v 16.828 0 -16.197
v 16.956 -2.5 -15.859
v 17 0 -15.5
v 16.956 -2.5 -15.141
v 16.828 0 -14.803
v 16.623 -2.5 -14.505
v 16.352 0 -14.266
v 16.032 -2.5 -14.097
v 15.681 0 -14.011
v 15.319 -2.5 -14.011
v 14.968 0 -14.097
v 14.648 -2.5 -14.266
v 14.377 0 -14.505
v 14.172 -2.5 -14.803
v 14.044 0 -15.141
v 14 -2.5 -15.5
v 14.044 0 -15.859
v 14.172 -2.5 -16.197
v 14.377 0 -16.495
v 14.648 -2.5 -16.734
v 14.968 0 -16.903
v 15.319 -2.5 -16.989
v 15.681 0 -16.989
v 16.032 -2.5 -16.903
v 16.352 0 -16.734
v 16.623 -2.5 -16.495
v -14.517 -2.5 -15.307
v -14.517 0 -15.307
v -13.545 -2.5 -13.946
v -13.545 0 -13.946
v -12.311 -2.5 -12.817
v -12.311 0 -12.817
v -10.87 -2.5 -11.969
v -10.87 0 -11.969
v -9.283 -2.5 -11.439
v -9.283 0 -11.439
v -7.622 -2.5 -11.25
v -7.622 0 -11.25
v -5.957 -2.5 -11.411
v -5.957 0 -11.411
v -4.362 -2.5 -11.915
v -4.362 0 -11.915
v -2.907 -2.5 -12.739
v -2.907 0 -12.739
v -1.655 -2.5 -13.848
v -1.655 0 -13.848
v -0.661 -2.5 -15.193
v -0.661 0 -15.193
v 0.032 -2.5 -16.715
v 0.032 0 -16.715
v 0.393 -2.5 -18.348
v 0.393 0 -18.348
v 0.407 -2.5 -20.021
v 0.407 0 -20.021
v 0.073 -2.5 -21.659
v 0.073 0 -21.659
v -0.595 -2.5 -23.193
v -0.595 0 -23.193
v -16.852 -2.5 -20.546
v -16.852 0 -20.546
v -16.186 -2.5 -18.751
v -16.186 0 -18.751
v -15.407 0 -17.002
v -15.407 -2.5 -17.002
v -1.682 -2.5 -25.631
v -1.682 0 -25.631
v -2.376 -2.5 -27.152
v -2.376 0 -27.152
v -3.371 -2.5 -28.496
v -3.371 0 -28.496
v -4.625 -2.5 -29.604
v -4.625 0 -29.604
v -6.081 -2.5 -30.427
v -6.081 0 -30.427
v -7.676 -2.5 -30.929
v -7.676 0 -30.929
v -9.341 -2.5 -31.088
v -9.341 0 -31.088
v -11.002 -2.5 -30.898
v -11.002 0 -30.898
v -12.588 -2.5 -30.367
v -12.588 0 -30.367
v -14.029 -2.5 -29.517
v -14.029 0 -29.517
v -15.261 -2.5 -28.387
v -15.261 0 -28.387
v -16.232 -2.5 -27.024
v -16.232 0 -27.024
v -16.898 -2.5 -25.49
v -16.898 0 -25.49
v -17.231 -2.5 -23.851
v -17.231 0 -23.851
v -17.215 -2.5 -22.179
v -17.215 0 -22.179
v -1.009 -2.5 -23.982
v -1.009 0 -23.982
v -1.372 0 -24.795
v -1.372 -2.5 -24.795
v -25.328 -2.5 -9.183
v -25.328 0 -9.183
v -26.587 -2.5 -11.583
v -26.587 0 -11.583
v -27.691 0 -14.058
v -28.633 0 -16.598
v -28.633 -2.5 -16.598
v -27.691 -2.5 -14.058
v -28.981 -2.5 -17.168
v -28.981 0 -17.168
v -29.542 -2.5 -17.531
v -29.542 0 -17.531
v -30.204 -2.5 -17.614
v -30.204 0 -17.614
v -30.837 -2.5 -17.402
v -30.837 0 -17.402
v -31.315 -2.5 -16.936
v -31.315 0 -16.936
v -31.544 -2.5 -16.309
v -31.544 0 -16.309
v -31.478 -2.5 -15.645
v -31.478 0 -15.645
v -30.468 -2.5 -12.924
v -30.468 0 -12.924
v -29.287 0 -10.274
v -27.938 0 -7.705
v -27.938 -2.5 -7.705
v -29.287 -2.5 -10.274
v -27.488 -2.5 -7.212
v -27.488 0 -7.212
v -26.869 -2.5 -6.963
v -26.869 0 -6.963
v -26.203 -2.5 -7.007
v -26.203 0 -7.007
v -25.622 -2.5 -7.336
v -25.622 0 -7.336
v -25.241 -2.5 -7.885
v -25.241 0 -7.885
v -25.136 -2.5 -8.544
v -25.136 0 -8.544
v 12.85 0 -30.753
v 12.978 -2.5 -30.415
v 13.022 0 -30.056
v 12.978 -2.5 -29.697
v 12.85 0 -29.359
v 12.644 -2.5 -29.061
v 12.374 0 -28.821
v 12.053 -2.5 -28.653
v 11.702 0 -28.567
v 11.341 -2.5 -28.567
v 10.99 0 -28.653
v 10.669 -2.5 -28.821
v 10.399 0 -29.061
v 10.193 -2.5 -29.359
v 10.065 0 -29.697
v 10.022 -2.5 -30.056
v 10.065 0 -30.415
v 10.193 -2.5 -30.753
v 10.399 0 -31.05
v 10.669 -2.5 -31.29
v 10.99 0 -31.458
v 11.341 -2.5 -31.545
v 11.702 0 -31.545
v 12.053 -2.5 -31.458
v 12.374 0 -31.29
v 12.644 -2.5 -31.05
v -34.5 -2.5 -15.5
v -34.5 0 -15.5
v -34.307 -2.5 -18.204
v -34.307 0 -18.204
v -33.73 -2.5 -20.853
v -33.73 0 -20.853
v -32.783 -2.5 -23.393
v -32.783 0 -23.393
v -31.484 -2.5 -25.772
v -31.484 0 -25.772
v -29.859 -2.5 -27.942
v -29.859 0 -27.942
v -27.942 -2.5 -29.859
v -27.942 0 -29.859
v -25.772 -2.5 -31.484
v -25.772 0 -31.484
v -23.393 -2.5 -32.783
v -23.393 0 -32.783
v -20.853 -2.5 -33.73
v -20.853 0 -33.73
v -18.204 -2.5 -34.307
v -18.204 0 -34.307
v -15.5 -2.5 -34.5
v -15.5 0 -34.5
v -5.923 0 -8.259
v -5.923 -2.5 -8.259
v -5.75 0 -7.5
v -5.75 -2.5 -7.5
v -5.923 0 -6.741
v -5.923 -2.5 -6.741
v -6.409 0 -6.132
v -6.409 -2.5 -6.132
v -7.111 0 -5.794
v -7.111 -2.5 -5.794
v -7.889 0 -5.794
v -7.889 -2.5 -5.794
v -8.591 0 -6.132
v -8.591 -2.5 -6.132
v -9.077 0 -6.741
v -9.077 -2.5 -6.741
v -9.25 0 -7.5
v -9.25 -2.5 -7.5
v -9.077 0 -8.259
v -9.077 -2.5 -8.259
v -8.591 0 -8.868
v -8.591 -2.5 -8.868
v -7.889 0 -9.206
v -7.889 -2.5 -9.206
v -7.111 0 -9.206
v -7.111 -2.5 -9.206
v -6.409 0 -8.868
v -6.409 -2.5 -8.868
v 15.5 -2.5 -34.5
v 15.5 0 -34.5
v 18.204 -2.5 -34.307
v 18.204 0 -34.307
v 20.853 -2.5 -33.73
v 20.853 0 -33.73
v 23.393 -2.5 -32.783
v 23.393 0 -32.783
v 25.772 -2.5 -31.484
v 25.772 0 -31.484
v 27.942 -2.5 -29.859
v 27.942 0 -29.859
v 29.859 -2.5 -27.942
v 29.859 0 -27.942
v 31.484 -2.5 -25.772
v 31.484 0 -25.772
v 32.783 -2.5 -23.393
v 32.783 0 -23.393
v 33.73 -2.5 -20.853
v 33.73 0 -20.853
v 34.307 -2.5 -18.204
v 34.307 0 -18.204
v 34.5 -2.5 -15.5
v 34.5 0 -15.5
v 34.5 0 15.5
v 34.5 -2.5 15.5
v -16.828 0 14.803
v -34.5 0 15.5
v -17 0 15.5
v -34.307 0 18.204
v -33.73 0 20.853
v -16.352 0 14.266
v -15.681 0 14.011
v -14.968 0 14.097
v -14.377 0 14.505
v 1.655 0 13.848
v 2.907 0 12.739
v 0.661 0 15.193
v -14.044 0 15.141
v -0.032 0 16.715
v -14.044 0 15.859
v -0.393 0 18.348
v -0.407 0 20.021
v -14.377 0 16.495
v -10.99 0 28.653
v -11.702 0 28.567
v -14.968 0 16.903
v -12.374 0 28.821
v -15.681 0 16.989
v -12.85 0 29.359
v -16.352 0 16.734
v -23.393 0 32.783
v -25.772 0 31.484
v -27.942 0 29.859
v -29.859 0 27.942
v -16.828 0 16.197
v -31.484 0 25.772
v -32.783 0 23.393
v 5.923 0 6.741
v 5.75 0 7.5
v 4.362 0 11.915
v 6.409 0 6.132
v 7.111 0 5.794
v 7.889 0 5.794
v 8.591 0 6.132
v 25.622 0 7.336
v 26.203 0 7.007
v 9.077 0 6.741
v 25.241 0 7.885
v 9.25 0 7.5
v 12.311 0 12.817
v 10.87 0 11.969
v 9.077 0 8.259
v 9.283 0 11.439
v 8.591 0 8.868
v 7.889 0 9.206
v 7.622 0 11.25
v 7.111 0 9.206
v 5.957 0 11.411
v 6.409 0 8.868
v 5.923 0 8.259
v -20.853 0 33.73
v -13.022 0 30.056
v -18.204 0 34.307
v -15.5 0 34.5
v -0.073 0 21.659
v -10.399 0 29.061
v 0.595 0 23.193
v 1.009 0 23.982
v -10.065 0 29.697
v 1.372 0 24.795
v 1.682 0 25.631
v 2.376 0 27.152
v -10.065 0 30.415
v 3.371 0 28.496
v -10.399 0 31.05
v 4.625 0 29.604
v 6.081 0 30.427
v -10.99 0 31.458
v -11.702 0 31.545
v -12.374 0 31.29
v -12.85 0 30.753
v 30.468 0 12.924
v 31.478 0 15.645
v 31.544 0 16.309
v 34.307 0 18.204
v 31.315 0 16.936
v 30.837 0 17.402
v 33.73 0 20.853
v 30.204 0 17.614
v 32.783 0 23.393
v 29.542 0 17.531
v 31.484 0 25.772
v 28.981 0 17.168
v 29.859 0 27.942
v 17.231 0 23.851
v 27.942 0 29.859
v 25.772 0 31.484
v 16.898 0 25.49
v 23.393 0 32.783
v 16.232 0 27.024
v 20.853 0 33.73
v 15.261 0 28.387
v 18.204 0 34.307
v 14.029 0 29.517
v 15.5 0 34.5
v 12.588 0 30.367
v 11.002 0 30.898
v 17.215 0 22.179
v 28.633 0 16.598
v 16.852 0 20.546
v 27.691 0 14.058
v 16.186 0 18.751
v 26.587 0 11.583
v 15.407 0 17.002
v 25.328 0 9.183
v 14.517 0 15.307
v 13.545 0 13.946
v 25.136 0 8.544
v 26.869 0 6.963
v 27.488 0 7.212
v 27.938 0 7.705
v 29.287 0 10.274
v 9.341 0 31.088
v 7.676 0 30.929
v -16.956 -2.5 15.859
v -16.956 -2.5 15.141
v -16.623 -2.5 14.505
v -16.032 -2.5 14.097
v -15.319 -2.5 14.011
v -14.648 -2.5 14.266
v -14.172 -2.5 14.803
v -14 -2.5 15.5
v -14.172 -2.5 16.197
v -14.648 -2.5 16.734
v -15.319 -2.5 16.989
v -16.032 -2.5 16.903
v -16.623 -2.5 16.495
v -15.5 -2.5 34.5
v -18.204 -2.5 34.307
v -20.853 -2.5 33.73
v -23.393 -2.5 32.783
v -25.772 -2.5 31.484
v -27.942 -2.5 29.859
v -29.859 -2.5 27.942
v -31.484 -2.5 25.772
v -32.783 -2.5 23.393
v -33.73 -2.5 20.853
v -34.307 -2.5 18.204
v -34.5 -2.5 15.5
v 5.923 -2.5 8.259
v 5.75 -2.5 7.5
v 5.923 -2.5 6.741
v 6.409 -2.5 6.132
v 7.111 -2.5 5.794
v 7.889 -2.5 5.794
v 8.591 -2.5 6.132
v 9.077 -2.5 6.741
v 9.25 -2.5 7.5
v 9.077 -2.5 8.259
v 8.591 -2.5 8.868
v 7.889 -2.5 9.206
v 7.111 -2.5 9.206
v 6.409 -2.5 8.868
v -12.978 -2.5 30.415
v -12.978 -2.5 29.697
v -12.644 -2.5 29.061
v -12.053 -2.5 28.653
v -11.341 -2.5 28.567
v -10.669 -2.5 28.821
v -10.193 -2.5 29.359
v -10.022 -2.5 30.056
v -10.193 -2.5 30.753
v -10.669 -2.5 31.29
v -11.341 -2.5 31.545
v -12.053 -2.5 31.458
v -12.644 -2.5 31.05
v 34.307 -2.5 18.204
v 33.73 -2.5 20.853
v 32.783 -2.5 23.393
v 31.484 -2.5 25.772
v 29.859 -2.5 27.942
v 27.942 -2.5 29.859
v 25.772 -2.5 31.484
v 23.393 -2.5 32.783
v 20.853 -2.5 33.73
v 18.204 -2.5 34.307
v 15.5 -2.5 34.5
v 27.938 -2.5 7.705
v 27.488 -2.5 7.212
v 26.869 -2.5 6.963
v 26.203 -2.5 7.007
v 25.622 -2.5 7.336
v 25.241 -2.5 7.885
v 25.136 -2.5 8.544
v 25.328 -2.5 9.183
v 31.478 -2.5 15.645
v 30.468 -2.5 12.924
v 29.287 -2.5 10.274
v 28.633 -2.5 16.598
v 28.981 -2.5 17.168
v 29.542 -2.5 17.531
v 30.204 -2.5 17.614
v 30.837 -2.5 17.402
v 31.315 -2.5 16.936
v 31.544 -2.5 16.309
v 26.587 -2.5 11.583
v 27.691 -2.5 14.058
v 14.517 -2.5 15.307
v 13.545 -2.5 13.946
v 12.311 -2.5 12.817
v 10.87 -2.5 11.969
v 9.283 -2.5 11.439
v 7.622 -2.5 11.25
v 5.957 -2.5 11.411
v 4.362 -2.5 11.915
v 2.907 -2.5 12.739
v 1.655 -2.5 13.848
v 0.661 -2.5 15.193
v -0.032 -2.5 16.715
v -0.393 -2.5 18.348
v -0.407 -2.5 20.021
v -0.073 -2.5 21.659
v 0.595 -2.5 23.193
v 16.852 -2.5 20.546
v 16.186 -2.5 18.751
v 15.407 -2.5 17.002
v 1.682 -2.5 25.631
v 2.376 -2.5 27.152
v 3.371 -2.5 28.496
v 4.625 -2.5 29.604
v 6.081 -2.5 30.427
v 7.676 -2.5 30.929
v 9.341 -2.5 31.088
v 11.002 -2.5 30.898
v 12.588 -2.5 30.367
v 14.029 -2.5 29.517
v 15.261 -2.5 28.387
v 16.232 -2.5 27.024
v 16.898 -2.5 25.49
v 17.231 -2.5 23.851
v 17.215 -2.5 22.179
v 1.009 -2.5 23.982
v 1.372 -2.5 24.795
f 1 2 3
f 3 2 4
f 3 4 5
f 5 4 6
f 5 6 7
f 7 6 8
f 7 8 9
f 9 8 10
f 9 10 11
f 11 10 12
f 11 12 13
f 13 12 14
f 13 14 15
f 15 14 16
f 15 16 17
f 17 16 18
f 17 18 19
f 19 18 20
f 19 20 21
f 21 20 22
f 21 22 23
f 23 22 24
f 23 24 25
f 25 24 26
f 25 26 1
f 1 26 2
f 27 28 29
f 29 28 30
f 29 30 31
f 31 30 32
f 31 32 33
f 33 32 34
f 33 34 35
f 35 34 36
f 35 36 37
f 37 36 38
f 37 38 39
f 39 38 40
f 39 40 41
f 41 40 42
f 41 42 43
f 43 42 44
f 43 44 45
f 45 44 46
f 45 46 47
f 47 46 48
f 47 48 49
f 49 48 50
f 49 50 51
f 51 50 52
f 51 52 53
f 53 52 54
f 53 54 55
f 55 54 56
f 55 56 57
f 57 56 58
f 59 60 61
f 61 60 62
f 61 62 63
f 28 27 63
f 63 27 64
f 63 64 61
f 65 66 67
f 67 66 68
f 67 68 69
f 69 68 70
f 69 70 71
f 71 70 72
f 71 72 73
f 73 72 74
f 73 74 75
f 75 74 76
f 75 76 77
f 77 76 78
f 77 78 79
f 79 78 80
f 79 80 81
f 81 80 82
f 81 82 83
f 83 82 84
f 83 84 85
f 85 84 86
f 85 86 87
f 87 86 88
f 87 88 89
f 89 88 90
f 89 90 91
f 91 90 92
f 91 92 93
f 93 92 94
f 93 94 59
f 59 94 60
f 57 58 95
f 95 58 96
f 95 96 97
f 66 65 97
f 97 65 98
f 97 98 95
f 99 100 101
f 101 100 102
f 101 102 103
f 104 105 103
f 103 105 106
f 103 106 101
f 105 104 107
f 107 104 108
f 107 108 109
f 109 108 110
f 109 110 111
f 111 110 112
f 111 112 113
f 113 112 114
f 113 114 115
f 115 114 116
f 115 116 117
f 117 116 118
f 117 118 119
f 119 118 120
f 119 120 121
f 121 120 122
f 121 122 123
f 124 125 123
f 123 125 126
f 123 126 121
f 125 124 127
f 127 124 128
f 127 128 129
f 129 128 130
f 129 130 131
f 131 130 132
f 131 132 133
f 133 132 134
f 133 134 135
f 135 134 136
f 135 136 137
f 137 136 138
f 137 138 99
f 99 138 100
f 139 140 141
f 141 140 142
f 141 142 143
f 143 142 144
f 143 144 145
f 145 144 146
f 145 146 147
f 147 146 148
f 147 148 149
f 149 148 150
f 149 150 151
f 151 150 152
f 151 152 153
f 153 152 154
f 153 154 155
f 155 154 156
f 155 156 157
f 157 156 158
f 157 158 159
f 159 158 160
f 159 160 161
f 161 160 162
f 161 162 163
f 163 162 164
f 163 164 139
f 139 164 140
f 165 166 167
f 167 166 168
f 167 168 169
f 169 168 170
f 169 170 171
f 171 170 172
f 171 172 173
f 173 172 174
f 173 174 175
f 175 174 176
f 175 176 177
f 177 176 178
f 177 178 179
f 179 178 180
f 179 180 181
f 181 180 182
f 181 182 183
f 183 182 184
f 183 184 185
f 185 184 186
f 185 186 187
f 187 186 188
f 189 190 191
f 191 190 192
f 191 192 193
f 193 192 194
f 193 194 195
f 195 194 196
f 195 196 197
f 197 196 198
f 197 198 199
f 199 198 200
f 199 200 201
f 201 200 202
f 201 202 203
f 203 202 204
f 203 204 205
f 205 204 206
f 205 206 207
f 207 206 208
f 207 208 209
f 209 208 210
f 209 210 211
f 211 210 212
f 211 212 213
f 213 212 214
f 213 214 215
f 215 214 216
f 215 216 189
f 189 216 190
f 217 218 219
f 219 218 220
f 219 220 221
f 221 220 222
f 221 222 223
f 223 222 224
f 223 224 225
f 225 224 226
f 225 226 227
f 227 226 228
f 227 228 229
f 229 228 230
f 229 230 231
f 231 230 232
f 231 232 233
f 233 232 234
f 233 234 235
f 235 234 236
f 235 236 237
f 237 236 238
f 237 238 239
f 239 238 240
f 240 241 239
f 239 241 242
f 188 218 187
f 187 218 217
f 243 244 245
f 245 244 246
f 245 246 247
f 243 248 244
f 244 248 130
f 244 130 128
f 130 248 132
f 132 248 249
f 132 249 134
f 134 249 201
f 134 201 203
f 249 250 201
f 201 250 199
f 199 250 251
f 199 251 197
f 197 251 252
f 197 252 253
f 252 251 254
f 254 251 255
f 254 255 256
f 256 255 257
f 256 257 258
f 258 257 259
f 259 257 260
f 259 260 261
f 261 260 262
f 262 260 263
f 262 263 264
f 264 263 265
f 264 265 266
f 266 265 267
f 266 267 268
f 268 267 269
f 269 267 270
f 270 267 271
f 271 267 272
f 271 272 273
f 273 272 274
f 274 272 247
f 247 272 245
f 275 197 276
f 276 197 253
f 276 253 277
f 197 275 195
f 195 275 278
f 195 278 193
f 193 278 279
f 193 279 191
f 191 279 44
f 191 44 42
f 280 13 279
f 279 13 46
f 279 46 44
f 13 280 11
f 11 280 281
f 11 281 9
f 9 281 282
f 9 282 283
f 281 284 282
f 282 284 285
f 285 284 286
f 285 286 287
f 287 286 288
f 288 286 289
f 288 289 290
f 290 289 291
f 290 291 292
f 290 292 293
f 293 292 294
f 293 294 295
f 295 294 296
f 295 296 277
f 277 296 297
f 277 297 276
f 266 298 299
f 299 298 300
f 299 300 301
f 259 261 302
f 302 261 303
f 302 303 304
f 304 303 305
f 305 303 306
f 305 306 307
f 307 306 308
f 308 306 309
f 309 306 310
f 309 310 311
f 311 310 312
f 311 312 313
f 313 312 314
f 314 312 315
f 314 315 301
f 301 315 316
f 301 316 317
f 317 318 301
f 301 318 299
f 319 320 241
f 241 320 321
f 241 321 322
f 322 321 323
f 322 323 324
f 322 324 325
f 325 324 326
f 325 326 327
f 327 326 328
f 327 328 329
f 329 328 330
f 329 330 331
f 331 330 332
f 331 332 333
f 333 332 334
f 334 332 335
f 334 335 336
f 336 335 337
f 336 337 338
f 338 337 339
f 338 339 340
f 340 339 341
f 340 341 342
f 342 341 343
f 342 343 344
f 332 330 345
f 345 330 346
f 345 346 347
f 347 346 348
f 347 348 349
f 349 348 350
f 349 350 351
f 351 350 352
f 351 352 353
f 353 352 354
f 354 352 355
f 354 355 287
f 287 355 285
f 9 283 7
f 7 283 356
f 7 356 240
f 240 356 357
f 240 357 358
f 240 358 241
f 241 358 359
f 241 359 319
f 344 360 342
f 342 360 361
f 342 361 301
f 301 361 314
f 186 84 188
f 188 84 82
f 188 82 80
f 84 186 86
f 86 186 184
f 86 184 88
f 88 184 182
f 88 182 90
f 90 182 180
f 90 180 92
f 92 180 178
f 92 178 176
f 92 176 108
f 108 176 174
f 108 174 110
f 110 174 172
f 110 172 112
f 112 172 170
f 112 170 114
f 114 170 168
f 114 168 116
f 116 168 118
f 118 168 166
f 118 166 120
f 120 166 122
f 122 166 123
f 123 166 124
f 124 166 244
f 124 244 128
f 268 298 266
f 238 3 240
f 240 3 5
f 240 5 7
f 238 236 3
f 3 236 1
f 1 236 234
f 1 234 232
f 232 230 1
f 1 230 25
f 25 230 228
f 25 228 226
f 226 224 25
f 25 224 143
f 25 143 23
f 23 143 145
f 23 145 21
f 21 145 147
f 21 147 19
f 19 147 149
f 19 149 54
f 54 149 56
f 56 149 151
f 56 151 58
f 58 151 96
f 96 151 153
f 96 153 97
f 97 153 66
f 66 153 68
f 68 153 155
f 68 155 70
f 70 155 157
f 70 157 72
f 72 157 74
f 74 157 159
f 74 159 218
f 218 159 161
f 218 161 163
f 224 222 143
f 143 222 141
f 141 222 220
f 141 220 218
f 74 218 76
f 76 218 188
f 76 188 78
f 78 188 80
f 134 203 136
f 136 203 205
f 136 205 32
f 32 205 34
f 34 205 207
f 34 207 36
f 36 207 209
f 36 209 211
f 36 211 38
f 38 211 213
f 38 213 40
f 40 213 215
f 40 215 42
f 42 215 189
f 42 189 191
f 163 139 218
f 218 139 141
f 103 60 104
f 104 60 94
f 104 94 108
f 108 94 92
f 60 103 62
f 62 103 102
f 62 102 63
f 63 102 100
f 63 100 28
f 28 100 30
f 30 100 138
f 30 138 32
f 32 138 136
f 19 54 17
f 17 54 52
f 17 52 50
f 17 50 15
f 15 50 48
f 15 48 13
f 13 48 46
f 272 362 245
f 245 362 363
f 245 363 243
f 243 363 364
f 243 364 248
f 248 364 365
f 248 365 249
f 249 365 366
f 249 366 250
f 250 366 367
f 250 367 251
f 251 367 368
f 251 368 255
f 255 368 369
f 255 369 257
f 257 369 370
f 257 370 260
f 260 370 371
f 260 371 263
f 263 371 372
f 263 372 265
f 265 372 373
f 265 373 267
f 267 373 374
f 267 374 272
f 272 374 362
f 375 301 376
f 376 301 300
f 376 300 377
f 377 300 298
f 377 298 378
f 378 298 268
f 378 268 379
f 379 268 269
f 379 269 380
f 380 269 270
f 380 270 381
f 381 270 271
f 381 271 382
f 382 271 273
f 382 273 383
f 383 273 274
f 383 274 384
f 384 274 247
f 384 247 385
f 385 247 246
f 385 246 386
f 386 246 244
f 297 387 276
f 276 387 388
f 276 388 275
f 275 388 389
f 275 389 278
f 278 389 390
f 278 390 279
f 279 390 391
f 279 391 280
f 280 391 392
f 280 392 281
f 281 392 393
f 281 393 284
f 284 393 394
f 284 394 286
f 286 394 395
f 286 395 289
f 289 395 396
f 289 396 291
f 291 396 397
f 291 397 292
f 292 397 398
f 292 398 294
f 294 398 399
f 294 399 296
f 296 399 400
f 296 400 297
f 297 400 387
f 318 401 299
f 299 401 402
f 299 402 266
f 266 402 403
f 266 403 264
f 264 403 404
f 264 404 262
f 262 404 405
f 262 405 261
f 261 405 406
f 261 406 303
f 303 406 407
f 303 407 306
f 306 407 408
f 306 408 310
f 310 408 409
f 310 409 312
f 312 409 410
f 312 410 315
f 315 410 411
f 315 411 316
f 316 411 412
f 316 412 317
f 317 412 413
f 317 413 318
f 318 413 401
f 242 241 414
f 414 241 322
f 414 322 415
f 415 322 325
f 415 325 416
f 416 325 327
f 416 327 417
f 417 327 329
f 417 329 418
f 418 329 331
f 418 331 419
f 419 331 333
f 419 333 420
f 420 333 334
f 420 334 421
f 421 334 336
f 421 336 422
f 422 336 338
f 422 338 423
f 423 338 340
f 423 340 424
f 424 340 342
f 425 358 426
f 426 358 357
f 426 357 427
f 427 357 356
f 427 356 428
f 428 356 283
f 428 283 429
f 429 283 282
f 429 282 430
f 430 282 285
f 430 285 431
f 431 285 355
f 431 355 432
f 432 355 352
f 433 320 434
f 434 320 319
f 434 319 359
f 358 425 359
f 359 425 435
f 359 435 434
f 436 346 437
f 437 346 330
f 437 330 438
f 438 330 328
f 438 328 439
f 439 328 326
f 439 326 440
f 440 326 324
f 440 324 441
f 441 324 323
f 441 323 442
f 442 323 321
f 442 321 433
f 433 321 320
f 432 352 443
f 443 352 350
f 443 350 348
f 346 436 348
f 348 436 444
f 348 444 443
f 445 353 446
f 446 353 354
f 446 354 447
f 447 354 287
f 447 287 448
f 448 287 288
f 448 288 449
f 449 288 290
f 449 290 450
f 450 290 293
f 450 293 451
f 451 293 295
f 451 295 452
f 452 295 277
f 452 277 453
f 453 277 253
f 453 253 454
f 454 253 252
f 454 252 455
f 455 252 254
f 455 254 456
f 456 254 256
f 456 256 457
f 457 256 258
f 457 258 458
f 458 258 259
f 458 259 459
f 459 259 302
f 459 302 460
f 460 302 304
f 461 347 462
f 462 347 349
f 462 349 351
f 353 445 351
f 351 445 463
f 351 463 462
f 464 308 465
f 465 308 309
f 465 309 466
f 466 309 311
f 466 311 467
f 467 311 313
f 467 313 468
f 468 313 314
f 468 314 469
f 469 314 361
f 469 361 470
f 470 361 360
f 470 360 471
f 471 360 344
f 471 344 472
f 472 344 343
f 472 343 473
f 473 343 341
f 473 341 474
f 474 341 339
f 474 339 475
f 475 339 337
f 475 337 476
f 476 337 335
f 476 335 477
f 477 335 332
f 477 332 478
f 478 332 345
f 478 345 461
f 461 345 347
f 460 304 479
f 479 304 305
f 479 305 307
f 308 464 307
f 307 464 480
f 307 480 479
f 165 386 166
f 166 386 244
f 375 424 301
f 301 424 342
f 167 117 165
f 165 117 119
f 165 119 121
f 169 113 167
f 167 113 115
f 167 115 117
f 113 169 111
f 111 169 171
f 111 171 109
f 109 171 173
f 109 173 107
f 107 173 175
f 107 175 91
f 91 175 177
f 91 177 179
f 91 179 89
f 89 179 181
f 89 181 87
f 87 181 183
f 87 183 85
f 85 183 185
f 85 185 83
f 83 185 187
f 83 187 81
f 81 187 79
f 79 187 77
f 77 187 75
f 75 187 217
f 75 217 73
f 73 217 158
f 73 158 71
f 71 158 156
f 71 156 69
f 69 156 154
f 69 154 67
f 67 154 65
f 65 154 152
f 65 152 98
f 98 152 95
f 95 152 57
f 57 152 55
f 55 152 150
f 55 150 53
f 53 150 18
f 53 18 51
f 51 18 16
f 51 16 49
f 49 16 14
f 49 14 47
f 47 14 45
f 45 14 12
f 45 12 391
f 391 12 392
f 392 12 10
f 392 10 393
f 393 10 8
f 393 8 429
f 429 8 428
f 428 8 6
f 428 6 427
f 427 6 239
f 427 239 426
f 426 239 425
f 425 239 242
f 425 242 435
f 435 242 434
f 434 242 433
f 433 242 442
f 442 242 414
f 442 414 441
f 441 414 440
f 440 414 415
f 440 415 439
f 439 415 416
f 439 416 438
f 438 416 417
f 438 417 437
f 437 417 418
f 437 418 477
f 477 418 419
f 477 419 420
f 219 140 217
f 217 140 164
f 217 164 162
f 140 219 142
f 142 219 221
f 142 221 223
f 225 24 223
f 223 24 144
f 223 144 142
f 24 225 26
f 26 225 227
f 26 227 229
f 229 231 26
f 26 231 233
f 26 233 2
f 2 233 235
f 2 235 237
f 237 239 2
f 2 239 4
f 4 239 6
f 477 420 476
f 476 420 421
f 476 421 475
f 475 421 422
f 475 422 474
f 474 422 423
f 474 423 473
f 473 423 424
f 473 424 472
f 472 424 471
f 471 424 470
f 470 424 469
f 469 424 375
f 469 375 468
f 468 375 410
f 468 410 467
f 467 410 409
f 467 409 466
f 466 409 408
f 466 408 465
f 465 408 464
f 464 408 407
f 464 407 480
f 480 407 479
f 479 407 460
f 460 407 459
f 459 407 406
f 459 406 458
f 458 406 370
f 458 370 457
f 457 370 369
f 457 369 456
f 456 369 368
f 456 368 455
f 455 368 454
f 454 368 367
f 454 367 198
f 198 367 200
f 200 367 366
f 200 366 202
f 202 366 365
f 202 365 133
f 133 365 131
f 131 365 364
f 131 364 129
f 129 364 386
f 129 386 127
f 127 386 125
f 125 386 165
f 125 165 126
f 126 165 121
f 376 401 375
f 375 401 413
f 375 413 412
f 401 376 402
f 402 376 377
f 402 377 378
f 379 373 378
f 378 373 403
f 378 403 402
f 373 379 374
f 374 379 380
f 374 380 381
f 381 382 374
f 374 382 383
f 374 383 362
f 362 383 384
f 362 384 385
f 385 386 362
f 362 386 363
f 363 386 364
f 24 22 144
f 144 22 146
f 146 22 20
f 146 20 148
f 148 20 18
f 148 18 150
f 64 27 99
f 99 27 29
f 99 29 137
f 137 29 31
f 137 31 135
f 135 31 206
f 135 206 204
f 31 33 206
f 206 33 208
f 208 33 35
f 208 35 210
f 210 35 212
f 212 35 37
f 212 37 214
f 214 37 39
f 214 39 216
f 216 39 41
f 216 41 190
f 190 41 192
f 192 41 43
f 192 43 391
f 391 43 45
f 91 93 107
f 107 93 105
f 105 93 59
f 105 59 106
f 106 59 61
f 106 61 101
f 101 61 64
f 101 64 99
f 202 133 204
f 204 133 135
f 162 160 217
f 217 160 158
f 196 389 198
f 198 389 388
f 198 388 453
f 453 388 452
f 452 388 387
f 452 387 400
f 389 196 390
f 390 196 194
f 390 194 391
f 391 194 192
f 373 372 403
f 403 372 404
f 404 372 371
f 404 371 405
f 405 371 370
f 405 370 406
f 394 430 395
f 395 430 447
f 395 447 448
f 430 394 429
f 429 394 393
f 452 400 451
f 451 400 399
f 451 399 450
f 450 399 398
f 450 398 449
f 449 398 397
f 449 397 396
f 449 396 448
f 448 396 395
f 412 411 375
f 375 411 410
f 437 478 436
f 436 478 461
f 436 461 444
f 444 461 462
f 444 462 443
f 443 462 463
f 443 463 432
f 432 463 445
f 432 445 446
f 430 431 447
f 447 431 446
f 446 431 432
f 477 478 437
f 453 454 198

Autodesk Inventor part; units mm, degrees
ref_plane "YZ Plane" through (0, 0, 0) normal (1, 0, 0) x (0, 1, 0)
ref_plane "XZ Plane" through (0, 0, 0) normal (0, 1, 0) x (-1, 0, 0)
ref_plane "XY Plane" through (0, 0, 0) normal (0, 0, 1) x (1, 0, 0)
sketch "Sketch1" plane through (0, 0, 0) normal (0, 1, 0) x (-1, 0, 0)
  line L0 (34.5, 34.5) -> (-34.5, 34.5)
  line L1 (-34.5, 34.5) -> (-34.5, -34.5)
  line L2 (-34.5, -34.5) -> (34.5, -34.5)
  line L3 (34.5, -34.5) -> (34.5, 34.5)
  point P0 (0, 0)
  point P1 (-34.5, 0)
  point P2 (0, 34.5)
  dimension "d0" = 69
extrude "Extrusion1" add sketch "Sketch1" against normal blind 2.5
sketch "Sketch2" plane through (0, -2.5, 0) normal (0, -1, 0) x (1, 0, 0)
  circle A0 centre (-15.5, 15.5) radius 19.9 construction
  line L0 (-15.5, 15.5) -> (15.5, -15.5) construction
  circle A1 centre (-15.5, 15.5) radius 1.5
  circle A2 centre (-11.5216, 30.0556) radius 1.5
  line L1 (-11.5216, 30.0556) -> (28.9823, 13.2551) construction
  arc A3 (26.633, 8.4441) -> (30.0556, 16.1214) centre (-11.5216, 30.0556) ccw construction
  arc A4 (27.9381, 7.7048) -> (31.4779, 15.6448) centre (-11.5216, 30.0556) ccw
  arc A5 (25.3278, 9.1834) -> (28.6334, 16.5981) centre (-11.5216, 30.0556) ccw
  arc A6 (31.4779, 15.6448) -> (28.6334, 16.5981) centre (30.0556, 16.1214) ccw
  arc A7 (25.3278, 9.1834) -> (27.9381, 7.7048) centre (26.633, 8.4441) ccw
  arc A8 (7.5557, 19.2499) -> (9.267, 23.0885) centre (-11.5216, 30.0556) ccw construction
  arc A9 (16.8524, 20.5464) -> (1.6817, 25.6307) centre (9.267, 23.0885) ccw
  arc A10 (0.5948, 23.1927) -> (14.5166, 15.3071) centre (7.5557, 19.2499) ccw
  arc A11 (14.5166, 15.3071) -> (16.8524, 20.5464) centre (-11.5216, 30.0556) ccw
  arc A12 (0.5948, 23.1927) -> (1.6817, 25.6307) centre (-11.5216, 30.0556) ccw
  circle A13 centre (7.5557, 19.2499) radius 18.25 construction
  line L2 (-11.5216, 31.5556) -> (-11.5216, 34.5) construction
  line L3 (34.5, 34.5) -> (-34.5, 34.5) projected
  line L4 (31.5556, 16.1214) -> (34.5, 16.1214) construction
  line L5 (34.5, -34.5) -> (34.5, 34.5) projected
  line L6 (0, 0) -> (7.5, 7.5) construction
  circle A14 centre (7.5, 7.5) radius 1.75
  line L7 (7.5178, 11.25) -> (7.5083, 9.25) construction
  line L8 (-34.5, 34.5) -> (-34.5, -34.5) projected
  arc A15 (-15.5, 34.5) -> (-34.5, 15.5) centre (-15.5, 15.5) ccw
  arc A16 (34.5, 15.5) -> (15.5, 34.5) centre (15.5, 15.5) ccw
  point P0 (8.7304, 21.6553)
  dimension "d5" = 3
  dimension "d18" = 3.5
  dimension "d3" = 39.8
  dimension "d4" = 3
  dimension "d6" = 43.85
  dimension "d7" = 7
  dimension "d8" = 4
  dimension "d10" = 7
  dimension "d11" = 4
  dimension "d12" = 16
  dimension "d13" = 36.5
  dimension "d14" = 25
  dimension "d15" = 15.5
  dimension "d16" = 15.5
  dimension "d17" = 7.5
  dimension "d19" = 2
extrude "Extrusion2" cut sketch "Sketch2" against normal through all
pattern_circular "Circular Pattern1" count 2 over 360 about axis through (0, -10, 0) along (0, 1, 0) of "Extrusion2"
equation "\"d10\" = d7"
equation "\"d11\" = d8"
equation "\"d16\" = d15"
properties part number "mount-plate_3DPrint"
